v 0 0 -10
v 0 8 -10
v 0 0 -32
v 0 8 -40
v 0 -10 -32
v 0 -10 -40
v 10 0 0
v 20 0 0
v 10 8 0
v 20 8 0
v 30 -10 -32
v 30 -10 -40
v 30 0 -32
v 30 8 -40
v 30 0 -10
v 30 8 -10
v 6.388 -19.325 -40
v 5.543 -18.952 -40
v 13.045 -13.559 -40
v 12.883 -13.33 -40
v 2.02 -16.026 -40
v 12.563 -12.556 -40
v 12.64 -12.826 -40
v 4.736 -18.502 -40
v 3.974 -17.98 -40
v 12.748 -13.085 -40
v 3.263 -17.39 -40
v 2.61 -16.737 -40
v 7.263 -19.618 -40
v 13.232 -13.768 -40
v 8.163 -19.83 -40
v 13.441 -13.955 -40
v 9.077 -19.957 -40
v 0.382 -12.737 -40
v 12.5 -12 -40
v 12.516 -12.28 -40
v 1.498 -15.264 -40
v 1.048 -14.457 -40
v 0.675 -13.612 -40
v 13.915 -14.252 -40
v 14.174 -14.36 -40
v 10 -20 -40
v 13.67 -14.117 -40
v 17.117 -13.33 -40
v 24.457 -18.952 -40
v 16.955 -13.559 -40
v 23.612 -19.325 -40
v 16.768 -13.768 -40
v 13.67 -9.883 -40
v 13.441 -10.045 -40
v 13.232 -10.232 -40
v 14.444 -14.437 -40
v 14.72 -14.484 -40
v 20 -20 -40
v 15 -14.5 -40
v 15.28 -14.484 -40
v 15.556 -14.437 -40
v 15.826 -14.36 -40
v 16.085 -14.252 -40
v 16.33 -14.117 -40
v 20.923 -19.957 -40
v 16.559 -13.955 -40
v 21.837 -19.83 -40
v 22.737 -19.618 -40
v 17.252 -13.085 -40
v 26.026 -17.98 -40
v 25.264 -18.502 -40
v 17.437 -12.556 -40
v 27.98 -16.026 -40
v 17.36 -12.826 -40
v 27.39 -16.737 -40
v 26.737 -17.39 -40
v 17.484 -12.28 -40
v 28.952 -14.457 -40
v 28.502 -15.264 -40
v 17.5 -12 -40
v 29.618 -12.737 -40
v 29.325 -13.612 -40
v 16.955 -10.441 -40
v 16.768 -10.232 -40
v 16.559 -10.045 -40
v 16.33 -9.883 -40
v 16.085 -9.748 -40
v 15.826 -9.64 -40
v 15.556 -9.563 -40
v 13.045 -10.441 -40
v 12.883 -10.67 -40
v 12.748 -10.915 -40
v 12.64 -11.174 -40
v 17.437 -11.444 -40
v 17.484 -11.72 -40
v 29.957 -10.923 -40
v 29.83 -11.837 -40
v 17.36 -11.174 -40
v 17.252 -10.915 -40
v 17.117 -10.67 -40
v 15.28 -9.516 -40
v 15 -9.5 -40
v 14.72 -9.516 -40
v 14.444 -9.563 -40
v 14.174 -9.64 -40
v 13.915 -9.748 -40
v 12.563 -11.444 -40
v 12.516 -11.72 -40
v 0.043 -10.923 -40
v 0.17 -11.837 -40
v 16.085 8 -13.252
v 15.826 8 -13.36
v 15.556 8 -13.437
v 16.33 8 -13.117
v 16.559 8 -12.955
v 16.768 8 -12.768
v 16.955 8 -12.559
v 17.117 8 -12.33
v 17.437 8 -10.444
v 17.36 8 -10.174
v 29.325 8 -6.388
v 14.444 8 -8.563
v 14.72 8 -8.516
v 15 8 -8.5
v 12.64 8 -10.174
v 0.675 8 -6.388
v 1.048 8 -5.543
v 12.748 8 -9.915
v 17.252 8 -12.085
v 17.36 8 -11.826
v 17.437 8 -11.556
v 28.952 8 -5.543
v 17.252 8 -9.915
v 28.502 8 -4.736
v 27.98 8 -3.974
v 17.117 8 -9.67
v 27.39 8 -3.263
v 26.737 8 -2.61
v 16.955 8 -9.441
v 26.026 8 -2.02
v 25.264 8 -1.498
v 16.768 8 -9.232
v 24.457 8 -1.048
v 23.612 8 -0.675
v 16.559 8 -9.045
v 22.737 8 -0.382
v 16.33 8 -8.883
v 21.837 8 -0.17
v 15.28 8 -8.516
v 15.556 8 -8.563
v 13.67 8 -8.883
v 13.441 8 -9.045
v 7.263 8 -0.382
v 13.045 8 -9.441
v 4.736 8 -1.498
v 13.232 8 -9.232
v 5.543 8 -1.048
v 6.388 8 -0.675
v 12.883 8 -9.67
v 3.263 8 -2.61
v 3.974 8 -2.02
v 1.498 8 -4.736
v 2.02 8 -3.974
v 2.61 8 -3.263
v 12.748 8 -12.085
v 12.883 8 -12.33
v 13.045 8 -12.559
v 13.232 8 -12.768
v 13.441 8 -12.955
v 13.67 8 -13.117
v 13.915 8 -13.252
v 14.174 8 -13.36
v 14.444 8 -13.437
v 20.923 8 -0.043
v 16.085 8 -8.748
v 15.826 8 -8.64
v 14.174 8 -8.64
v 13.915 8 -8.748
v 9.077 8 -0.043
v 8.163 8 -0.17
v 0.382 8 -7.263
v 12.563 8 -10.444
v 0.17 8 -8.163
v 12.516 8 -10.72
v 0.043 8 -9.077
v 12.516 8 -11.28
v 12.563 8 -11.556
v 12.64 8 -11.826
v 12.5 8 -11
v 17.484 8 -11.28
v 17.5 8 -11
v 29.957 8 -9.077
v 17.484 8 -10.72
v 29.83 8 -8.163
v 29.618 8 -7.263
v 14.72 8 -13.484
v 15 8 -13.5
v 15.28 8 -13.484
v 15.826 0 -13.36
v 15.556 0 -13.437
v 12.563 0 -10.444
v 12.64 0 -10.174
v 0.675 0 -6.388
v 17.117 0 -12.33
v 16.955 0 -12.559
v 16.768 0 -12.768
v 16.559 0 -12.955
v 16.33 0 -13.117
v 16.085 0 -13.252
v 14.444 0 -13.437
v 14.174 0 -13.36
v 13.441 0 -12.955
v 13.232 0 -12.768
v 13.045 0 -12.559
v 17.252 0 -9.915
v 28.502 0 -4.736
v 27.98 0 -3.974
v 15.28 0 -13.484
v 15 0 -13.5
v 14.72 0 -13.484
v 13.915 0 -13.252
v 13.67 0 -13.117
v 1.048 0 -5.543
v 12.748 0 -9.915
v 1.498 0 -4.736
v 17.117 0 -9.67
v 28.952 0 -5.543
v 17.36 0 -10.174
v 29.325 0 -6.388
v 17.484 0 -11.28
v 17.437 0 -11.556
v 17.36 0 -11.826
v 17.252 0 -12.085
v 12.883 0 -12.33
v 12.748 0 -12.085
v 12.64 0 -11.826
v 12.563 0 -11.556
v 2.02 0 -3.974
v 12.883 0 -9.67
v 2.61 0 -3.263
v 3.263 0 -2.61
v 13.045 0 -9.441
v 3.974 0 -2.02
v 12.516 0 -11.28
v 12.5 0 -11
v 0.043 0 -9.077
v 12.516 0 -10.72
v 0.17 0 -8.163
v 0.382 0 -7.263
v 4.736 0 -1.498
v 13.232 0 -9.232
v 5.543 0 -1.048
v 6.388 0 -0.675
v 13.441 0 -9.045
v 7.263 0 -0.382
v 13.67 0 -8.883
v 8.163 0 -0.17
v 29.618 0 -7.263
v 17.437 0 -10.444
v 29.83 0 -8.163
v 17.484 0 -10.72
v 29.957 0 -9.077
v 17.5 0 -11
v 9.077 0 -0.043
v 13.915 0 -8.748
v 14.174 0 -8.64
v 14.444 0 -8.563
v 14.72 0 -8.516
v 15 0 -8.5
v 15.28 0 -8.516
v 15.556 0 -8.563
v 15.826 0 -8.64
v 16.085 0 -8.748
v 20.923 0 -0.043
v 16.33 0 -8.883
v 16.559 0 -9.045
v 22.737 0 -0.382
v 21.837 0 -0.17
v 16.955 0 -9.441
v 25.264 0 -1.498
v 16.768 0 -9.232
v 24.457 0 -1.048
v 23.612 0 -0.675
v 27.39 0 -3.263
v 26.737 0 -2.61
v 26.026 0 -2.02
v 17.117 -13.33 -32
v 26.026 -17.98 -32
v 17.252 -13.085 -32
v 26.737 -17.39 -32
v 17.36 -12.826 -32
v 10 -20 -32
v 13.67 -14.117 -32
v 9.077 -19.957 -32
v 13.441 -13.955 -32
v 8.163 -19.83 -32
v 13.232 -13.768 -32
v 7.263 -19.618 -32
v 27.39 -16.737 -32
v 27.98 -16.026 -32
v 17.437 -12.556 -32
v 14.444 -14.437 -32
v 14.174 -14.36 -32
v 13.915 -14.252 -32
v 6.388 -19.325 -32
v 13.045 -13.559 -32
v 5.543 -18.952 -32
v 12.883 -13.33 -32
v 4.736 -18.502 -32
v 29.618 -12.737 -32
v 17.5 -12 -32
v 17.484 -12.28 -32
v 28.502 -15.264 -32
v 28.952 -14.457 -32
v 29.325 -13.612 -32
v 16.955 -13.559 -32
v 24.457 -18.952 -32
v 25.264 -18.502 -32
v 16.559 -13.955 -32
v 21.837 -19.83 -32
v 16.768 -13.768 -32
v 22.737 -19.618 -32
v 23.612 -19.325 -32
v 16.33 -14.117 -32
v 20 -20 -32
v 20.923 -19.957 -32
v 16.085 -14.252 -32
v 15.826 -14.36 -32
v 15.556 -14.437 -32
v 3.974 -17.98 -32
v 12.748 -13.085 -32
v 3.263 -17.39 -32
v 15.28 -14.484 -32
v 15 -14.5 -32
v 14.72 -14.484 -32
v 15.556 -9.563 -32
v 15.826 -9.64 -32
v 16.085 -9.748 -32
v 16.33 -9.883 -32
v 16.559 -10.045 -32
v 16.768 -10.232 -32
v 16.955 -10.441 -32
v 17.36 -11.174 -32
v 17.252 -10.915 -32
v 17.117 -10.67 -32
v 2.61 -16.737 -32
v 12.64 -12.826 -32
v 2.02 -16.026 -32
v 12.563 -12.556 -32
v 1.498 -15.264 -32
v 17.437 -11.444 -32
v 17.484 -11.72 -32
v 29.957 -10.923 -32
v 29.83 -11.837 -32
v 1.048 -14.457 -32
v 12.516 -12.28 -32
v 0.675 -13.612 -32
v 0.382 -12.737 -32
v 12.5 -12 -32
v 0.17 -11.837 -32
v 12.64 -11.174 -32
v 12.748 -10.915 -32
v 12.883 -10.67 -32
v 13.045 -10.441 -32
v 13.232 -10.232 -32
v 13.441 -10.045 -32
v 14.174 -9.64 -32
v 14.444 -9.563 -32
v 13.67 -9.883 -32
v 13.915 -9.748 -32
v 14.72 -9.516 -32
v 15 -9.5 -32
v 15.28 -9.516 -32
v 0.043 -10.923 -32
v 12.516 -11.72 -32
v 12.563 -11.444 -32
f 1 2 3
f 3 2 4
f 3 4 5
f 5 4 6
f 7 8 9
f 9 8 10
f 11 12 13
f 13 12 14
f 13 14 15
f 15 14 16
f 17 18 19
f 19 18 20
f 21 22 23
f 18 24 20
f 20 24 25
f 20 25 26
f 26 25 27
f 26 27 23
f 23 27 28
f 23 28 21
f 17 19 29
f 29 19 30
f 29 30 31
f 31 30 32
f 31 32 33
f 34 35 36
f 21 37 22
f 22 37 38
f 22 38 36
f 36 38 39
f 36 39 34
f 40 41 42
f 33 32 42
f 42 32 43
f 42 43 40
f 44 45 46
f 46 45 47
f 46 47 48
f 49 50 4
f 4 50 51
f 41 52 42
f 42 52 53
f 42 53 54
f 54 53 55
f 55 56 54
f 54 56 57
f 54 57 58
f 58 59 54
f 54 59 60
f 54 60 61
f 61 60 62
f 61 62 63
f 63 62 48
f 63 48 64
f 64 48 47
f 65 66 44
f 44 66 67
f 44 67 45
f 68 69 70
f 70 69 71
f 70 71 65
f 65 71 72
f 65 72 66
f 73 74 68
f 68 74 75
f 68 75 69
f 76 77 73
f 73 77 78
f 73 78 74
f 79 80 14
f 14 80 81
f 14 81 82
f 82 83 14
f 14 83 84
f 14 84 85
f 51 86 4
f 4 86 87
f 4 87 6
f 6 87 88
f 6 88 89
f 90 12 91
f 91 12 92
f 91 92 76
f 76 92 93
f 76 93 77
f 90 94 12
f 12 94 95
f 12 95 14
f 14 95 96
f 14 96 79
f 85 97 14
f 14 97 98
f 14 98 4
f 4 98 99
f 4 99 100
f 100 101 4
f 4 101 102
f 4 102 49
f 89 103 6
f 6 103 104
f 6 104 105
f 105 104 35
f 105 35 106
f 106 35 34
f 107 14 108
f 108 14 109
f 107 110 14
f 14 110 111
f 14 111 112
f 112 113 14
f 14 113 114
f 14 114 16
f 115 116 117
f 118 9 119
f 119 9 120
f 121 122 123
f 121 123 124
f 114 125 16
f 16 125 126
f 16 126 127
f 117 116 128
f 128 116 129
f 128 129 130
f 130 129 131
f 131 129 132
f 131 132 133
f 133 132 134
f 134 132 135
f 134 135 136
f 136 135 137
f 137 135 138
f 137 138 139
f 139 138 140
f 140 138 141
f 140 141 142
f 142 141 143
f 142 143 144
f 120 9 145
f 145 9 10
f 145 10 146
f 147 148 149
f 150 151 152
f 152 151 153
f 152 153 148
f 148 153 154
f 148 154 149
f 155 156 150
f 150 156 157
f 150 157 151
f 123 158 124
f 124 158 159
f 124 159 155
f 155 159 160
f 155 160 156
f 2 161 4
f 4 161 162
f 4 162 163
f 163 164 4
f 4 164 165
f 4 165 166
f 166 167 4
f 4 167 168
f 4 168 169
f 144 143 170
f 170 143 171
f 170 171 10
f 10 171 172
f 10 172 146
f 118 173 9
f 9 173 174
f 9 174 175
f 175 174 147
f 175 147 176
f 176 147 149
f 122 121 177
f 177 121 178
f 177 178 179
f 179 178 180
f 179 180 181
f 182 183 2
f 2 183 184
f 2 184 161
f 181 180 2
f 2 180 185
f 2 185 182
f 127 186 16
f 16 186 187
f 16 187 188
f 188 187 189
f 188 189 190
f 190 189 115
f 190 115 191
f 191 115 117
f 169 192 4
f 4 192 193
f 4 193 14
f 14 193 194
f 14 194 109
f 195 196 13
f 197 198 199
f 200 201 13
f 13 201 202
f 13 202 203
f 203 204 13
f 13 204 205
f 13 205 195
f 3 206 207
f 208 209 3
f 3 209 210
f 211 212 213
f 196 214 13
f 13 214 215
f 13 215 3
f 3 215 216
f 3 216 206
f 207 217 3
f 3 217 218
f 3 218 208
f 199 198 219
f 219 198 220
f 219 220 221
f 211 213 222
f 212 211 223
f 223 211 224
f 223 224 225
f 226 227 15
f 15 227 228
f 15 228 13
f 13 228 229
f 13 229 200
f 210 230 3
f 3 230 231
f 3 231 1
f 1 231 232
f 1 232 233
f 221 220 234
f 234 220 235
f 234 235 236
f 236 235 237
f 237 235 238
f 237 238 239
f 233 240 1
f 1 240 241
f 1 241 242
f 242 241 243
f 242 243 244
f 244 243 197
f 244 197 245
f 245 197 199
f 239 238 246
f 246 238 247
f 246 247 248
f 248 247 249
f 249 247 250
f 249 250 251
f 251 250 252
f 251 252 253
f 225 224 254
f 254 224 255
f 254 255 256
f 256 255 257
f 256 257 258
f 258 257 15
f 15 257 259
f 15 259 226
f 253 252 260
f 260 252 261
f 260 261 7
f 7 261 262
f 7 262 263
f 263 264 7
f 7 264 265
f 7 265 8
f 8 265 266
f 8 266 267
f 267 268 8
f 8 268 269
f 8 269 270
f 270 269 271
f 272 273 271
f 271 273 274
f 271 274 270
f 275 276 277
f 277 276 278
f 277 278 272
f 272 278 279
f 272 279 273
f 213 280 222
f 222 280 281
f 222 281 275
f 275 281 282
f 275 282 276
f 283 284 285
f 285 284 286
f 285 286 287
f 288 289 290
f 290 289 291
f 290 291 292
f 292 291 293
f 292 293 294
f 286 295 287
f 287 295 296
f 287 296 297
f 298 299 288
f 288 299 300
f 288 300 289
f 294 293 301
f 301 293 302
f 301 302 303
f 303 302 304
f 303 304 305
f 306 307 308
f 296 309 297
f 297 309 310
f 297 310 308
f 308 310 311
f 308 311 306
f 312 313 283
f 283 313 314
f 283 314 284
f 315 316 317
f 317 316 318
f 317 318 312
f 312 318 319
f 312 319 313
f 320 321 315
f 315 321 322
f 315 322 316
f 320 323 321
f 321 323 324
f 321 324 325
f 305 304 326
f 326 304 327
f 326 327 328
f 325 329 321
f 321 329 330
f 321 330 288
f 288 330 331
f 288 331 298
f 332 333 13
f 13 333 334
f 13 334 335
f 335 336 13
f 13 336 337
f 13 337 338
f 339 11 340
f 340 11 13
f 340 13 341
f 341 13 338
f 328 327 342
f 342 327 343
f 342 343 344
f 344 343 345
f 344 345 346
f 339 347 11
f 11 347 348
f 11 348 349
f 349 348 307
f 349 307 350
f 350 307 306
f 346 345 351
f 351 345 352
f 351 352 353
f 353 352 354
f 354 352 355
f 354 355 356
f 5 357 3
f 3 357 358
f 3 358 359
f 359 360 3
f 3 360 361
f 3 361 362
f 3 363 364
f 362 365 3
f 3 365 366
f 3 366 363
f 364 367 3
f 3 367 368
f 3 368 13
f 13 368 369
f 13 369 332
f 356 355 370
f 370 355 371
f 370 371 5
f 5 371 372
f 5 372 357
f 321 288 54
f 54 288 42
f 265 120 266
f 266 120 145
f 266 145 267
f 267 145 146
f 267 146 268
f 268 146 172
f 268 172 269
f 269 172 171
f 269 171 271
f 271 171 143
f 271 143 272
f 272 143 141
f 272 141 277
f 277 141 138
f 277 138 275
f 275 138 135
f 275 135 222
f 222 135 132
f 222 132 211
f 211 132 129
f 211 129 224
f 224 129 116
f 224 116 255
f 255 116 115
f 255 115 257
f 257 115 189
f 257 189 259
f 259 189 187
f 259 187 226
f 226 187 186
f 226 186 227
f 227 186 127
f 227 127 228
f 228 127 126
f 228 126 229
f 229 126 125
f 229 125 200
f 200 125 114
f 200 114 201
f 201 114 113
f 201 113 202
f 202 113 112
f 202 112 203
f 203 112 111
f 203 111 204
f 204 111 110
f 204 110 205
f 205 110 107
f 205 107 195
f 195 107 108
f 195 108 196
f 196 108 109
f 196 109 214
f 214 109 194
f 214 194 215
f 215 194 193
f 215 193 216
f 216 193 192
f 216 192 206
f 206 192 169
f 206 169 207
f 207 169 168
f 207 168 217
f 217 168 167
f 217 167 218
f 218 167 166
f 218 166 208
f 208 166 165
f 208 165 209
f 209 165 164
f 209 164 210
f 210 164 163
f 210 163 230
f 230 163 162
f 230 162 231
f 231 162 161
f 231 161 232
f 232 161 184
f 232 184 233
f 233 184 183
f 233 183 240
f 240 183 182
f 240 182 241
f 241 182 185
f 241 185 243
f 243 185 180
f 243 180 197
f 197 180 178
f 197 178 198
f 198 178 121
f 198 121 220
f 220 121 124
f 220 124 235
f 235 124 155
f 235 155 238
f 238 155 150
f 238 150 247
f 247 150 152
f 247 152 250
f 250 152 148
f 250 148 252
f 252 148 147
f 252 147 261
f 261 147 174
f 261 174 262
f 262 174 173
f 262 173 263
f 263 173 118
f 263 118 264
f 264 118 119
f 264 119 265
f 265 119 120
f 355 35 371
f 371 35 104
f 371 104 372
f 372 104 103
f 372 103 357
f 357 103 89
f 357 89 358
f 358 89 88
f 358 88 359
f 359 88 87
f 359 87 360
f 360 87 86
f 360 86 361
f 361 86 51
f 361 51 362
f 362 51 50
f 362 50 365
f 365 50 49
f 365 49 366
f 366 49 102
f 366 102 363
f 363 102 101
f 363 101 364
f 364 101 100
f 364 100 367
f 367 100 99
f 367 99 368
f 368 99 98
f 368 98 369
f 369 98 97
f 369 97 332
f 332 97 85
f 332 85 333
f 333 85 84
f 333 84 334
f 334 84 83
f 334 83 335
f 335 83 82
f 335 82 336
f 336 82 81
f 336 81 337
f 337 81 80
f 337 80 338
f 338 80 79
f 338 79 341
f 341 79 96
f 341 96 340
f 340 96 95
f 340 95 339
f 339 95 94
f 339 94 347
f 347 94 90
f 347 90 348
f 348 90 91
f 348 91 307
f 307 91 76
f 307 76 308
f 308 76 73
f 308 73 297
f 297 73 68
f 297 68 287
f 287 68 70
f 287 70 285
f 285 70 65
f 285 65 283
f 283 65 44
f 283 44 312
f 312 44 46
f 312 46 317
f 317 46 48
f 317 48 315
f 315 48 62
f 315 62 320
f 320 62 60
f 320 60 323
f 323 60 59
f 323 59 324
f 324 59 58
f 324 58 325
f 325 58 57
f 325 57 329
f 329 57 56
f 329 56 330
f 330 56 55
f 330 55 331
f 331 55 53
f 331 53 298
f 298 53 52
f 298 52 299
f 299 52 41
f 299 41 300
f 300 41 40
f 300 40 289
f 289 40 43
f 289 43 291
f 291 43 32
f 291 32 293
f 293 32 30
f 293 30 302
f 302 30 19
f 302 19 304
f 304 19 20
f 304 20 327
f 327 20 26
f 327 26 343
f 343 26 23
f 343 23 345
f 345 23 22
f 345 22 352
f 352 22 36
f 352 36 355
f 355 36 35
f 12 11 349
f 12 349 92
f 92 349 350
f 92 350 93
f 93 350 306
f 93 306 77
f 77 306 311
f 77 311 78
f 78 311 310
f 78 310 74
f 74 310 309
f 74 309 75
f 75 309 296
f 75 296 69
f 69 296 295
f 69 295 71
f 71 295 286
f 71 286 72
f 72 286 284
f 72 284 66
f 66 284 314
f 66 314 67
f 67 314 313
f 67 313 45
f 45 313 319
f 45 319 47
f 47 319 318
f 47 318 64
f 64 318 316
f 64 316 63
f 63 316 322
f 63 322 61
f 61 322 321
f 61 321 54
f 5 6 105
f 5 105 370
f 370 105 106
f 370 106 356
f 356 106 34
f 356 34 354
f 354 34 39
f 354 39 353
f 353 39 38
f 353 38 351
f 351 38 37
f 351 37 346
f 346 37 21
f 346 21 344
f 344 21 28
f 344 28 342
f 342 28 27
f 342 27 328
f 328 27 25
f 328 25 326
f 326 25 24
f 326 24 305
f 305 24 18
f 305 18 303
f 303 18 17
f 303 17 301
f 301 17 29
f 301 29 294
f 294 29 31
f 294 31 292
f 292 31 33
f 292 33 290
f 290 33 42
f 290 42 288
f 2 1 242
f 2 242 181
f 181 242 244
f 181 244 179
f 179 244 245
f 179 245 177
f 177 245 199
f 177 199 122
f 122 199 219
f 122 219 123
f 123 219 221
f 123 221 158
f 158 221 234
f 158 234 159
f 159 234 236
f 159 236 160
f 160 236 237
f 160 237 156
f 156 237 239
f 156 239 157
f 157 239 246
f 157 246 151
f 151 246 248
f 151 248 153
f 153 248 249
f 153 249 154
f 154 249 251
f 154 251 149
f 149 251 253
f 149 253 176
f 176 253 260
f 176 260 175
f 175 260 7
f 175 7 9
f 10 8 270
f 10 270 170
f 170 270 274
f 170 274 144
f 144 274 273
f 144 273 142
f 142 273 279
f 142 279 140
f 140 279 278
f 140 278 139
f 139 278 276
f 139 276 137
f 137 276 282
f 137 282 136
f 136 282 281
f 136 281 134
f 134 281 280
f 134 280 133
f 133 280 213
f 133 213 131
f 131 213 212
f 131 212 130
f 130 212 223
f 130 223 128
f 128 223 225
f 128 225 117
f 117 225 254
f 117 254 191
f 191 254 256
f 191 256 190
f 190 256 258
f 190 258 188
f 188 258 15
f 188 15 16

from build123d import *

# Parameters (mm, degrees)
SKETCH1_W           = 30
SKETCH1_H           = 40
BOSS_EXTRUDE1_DEPTH = 8
SKETCH2_W           = 30
SKETCH2_H           = 8
BOSS_EXTRUDE2_DEPTH = 20
SKETCH3_R           = 2.5
CUT_EXTRUDE1_DEPTH  = 10
SKETCH4_R           = 2.5
CUT_EXTRUDE2_DEPTH  = 10
FILLET2_R           = 10


with BuildPart() as part:
    # Sketch1 → Boss-Extrude1 (new body)
    with BuildSketch(Plane(origin=(0, 0, 0), x_dir=(1, 0, 0), z_dir=(0, 1, 0))):
        with Locations((15, 20)):
            Rectangle(SKETCH1_W, SKETCH1_H)
    extrude(amount=BOSS_EXTRUDE1_DEPTH)

    # Sketch2 → Boss-Extrude2 (add)
    with BuildSketch(Plane.XZ):
        with Locations((15, -36)):
            Rectangle(SKETCH2_W, SKETCH2_H)
    extrude(amount=BOSS_EXTRUDE2_DEPTH)

    # Sketch3 → Cut-Extrude1 (cut)
    with BuildSketch(Plane(origin=(0, 8, 0), x_dir=(1, 0, 0), z_dir=(0, 1, 0))):
        with Locations((15, 11)):
            Circle(SKETCH3_R)
    extrude(amount=-CUT_EXTRUDE1_DEPTH, mode=Mode.SUBTRACT)

    # Sketch4 → Cut-Extrude2 (cut)
    with BuildSketch(Plane(origin=(0, 0, -40), x_dir=(-1, 0, 0), z_dir=(0, 0, -1))):
        with Locations((-15, -12)):
            Circle(SKETCH4_R)
    extrude(amount=-CUT_EXTRUDE2_DEPTH, mode=Mode.SUBTRACT)

    # Fillet2
    fillet2_edges = [part.edges().sort_by_distance(p)[0] for p in [
        (0, -20, -36),
        (30, -20, -36),
        (30, 4, 0),
        (0, 4, 0),
    ]]
    fillet(fillet2_edges, radius=FILLET2_R)


solid = part.part
